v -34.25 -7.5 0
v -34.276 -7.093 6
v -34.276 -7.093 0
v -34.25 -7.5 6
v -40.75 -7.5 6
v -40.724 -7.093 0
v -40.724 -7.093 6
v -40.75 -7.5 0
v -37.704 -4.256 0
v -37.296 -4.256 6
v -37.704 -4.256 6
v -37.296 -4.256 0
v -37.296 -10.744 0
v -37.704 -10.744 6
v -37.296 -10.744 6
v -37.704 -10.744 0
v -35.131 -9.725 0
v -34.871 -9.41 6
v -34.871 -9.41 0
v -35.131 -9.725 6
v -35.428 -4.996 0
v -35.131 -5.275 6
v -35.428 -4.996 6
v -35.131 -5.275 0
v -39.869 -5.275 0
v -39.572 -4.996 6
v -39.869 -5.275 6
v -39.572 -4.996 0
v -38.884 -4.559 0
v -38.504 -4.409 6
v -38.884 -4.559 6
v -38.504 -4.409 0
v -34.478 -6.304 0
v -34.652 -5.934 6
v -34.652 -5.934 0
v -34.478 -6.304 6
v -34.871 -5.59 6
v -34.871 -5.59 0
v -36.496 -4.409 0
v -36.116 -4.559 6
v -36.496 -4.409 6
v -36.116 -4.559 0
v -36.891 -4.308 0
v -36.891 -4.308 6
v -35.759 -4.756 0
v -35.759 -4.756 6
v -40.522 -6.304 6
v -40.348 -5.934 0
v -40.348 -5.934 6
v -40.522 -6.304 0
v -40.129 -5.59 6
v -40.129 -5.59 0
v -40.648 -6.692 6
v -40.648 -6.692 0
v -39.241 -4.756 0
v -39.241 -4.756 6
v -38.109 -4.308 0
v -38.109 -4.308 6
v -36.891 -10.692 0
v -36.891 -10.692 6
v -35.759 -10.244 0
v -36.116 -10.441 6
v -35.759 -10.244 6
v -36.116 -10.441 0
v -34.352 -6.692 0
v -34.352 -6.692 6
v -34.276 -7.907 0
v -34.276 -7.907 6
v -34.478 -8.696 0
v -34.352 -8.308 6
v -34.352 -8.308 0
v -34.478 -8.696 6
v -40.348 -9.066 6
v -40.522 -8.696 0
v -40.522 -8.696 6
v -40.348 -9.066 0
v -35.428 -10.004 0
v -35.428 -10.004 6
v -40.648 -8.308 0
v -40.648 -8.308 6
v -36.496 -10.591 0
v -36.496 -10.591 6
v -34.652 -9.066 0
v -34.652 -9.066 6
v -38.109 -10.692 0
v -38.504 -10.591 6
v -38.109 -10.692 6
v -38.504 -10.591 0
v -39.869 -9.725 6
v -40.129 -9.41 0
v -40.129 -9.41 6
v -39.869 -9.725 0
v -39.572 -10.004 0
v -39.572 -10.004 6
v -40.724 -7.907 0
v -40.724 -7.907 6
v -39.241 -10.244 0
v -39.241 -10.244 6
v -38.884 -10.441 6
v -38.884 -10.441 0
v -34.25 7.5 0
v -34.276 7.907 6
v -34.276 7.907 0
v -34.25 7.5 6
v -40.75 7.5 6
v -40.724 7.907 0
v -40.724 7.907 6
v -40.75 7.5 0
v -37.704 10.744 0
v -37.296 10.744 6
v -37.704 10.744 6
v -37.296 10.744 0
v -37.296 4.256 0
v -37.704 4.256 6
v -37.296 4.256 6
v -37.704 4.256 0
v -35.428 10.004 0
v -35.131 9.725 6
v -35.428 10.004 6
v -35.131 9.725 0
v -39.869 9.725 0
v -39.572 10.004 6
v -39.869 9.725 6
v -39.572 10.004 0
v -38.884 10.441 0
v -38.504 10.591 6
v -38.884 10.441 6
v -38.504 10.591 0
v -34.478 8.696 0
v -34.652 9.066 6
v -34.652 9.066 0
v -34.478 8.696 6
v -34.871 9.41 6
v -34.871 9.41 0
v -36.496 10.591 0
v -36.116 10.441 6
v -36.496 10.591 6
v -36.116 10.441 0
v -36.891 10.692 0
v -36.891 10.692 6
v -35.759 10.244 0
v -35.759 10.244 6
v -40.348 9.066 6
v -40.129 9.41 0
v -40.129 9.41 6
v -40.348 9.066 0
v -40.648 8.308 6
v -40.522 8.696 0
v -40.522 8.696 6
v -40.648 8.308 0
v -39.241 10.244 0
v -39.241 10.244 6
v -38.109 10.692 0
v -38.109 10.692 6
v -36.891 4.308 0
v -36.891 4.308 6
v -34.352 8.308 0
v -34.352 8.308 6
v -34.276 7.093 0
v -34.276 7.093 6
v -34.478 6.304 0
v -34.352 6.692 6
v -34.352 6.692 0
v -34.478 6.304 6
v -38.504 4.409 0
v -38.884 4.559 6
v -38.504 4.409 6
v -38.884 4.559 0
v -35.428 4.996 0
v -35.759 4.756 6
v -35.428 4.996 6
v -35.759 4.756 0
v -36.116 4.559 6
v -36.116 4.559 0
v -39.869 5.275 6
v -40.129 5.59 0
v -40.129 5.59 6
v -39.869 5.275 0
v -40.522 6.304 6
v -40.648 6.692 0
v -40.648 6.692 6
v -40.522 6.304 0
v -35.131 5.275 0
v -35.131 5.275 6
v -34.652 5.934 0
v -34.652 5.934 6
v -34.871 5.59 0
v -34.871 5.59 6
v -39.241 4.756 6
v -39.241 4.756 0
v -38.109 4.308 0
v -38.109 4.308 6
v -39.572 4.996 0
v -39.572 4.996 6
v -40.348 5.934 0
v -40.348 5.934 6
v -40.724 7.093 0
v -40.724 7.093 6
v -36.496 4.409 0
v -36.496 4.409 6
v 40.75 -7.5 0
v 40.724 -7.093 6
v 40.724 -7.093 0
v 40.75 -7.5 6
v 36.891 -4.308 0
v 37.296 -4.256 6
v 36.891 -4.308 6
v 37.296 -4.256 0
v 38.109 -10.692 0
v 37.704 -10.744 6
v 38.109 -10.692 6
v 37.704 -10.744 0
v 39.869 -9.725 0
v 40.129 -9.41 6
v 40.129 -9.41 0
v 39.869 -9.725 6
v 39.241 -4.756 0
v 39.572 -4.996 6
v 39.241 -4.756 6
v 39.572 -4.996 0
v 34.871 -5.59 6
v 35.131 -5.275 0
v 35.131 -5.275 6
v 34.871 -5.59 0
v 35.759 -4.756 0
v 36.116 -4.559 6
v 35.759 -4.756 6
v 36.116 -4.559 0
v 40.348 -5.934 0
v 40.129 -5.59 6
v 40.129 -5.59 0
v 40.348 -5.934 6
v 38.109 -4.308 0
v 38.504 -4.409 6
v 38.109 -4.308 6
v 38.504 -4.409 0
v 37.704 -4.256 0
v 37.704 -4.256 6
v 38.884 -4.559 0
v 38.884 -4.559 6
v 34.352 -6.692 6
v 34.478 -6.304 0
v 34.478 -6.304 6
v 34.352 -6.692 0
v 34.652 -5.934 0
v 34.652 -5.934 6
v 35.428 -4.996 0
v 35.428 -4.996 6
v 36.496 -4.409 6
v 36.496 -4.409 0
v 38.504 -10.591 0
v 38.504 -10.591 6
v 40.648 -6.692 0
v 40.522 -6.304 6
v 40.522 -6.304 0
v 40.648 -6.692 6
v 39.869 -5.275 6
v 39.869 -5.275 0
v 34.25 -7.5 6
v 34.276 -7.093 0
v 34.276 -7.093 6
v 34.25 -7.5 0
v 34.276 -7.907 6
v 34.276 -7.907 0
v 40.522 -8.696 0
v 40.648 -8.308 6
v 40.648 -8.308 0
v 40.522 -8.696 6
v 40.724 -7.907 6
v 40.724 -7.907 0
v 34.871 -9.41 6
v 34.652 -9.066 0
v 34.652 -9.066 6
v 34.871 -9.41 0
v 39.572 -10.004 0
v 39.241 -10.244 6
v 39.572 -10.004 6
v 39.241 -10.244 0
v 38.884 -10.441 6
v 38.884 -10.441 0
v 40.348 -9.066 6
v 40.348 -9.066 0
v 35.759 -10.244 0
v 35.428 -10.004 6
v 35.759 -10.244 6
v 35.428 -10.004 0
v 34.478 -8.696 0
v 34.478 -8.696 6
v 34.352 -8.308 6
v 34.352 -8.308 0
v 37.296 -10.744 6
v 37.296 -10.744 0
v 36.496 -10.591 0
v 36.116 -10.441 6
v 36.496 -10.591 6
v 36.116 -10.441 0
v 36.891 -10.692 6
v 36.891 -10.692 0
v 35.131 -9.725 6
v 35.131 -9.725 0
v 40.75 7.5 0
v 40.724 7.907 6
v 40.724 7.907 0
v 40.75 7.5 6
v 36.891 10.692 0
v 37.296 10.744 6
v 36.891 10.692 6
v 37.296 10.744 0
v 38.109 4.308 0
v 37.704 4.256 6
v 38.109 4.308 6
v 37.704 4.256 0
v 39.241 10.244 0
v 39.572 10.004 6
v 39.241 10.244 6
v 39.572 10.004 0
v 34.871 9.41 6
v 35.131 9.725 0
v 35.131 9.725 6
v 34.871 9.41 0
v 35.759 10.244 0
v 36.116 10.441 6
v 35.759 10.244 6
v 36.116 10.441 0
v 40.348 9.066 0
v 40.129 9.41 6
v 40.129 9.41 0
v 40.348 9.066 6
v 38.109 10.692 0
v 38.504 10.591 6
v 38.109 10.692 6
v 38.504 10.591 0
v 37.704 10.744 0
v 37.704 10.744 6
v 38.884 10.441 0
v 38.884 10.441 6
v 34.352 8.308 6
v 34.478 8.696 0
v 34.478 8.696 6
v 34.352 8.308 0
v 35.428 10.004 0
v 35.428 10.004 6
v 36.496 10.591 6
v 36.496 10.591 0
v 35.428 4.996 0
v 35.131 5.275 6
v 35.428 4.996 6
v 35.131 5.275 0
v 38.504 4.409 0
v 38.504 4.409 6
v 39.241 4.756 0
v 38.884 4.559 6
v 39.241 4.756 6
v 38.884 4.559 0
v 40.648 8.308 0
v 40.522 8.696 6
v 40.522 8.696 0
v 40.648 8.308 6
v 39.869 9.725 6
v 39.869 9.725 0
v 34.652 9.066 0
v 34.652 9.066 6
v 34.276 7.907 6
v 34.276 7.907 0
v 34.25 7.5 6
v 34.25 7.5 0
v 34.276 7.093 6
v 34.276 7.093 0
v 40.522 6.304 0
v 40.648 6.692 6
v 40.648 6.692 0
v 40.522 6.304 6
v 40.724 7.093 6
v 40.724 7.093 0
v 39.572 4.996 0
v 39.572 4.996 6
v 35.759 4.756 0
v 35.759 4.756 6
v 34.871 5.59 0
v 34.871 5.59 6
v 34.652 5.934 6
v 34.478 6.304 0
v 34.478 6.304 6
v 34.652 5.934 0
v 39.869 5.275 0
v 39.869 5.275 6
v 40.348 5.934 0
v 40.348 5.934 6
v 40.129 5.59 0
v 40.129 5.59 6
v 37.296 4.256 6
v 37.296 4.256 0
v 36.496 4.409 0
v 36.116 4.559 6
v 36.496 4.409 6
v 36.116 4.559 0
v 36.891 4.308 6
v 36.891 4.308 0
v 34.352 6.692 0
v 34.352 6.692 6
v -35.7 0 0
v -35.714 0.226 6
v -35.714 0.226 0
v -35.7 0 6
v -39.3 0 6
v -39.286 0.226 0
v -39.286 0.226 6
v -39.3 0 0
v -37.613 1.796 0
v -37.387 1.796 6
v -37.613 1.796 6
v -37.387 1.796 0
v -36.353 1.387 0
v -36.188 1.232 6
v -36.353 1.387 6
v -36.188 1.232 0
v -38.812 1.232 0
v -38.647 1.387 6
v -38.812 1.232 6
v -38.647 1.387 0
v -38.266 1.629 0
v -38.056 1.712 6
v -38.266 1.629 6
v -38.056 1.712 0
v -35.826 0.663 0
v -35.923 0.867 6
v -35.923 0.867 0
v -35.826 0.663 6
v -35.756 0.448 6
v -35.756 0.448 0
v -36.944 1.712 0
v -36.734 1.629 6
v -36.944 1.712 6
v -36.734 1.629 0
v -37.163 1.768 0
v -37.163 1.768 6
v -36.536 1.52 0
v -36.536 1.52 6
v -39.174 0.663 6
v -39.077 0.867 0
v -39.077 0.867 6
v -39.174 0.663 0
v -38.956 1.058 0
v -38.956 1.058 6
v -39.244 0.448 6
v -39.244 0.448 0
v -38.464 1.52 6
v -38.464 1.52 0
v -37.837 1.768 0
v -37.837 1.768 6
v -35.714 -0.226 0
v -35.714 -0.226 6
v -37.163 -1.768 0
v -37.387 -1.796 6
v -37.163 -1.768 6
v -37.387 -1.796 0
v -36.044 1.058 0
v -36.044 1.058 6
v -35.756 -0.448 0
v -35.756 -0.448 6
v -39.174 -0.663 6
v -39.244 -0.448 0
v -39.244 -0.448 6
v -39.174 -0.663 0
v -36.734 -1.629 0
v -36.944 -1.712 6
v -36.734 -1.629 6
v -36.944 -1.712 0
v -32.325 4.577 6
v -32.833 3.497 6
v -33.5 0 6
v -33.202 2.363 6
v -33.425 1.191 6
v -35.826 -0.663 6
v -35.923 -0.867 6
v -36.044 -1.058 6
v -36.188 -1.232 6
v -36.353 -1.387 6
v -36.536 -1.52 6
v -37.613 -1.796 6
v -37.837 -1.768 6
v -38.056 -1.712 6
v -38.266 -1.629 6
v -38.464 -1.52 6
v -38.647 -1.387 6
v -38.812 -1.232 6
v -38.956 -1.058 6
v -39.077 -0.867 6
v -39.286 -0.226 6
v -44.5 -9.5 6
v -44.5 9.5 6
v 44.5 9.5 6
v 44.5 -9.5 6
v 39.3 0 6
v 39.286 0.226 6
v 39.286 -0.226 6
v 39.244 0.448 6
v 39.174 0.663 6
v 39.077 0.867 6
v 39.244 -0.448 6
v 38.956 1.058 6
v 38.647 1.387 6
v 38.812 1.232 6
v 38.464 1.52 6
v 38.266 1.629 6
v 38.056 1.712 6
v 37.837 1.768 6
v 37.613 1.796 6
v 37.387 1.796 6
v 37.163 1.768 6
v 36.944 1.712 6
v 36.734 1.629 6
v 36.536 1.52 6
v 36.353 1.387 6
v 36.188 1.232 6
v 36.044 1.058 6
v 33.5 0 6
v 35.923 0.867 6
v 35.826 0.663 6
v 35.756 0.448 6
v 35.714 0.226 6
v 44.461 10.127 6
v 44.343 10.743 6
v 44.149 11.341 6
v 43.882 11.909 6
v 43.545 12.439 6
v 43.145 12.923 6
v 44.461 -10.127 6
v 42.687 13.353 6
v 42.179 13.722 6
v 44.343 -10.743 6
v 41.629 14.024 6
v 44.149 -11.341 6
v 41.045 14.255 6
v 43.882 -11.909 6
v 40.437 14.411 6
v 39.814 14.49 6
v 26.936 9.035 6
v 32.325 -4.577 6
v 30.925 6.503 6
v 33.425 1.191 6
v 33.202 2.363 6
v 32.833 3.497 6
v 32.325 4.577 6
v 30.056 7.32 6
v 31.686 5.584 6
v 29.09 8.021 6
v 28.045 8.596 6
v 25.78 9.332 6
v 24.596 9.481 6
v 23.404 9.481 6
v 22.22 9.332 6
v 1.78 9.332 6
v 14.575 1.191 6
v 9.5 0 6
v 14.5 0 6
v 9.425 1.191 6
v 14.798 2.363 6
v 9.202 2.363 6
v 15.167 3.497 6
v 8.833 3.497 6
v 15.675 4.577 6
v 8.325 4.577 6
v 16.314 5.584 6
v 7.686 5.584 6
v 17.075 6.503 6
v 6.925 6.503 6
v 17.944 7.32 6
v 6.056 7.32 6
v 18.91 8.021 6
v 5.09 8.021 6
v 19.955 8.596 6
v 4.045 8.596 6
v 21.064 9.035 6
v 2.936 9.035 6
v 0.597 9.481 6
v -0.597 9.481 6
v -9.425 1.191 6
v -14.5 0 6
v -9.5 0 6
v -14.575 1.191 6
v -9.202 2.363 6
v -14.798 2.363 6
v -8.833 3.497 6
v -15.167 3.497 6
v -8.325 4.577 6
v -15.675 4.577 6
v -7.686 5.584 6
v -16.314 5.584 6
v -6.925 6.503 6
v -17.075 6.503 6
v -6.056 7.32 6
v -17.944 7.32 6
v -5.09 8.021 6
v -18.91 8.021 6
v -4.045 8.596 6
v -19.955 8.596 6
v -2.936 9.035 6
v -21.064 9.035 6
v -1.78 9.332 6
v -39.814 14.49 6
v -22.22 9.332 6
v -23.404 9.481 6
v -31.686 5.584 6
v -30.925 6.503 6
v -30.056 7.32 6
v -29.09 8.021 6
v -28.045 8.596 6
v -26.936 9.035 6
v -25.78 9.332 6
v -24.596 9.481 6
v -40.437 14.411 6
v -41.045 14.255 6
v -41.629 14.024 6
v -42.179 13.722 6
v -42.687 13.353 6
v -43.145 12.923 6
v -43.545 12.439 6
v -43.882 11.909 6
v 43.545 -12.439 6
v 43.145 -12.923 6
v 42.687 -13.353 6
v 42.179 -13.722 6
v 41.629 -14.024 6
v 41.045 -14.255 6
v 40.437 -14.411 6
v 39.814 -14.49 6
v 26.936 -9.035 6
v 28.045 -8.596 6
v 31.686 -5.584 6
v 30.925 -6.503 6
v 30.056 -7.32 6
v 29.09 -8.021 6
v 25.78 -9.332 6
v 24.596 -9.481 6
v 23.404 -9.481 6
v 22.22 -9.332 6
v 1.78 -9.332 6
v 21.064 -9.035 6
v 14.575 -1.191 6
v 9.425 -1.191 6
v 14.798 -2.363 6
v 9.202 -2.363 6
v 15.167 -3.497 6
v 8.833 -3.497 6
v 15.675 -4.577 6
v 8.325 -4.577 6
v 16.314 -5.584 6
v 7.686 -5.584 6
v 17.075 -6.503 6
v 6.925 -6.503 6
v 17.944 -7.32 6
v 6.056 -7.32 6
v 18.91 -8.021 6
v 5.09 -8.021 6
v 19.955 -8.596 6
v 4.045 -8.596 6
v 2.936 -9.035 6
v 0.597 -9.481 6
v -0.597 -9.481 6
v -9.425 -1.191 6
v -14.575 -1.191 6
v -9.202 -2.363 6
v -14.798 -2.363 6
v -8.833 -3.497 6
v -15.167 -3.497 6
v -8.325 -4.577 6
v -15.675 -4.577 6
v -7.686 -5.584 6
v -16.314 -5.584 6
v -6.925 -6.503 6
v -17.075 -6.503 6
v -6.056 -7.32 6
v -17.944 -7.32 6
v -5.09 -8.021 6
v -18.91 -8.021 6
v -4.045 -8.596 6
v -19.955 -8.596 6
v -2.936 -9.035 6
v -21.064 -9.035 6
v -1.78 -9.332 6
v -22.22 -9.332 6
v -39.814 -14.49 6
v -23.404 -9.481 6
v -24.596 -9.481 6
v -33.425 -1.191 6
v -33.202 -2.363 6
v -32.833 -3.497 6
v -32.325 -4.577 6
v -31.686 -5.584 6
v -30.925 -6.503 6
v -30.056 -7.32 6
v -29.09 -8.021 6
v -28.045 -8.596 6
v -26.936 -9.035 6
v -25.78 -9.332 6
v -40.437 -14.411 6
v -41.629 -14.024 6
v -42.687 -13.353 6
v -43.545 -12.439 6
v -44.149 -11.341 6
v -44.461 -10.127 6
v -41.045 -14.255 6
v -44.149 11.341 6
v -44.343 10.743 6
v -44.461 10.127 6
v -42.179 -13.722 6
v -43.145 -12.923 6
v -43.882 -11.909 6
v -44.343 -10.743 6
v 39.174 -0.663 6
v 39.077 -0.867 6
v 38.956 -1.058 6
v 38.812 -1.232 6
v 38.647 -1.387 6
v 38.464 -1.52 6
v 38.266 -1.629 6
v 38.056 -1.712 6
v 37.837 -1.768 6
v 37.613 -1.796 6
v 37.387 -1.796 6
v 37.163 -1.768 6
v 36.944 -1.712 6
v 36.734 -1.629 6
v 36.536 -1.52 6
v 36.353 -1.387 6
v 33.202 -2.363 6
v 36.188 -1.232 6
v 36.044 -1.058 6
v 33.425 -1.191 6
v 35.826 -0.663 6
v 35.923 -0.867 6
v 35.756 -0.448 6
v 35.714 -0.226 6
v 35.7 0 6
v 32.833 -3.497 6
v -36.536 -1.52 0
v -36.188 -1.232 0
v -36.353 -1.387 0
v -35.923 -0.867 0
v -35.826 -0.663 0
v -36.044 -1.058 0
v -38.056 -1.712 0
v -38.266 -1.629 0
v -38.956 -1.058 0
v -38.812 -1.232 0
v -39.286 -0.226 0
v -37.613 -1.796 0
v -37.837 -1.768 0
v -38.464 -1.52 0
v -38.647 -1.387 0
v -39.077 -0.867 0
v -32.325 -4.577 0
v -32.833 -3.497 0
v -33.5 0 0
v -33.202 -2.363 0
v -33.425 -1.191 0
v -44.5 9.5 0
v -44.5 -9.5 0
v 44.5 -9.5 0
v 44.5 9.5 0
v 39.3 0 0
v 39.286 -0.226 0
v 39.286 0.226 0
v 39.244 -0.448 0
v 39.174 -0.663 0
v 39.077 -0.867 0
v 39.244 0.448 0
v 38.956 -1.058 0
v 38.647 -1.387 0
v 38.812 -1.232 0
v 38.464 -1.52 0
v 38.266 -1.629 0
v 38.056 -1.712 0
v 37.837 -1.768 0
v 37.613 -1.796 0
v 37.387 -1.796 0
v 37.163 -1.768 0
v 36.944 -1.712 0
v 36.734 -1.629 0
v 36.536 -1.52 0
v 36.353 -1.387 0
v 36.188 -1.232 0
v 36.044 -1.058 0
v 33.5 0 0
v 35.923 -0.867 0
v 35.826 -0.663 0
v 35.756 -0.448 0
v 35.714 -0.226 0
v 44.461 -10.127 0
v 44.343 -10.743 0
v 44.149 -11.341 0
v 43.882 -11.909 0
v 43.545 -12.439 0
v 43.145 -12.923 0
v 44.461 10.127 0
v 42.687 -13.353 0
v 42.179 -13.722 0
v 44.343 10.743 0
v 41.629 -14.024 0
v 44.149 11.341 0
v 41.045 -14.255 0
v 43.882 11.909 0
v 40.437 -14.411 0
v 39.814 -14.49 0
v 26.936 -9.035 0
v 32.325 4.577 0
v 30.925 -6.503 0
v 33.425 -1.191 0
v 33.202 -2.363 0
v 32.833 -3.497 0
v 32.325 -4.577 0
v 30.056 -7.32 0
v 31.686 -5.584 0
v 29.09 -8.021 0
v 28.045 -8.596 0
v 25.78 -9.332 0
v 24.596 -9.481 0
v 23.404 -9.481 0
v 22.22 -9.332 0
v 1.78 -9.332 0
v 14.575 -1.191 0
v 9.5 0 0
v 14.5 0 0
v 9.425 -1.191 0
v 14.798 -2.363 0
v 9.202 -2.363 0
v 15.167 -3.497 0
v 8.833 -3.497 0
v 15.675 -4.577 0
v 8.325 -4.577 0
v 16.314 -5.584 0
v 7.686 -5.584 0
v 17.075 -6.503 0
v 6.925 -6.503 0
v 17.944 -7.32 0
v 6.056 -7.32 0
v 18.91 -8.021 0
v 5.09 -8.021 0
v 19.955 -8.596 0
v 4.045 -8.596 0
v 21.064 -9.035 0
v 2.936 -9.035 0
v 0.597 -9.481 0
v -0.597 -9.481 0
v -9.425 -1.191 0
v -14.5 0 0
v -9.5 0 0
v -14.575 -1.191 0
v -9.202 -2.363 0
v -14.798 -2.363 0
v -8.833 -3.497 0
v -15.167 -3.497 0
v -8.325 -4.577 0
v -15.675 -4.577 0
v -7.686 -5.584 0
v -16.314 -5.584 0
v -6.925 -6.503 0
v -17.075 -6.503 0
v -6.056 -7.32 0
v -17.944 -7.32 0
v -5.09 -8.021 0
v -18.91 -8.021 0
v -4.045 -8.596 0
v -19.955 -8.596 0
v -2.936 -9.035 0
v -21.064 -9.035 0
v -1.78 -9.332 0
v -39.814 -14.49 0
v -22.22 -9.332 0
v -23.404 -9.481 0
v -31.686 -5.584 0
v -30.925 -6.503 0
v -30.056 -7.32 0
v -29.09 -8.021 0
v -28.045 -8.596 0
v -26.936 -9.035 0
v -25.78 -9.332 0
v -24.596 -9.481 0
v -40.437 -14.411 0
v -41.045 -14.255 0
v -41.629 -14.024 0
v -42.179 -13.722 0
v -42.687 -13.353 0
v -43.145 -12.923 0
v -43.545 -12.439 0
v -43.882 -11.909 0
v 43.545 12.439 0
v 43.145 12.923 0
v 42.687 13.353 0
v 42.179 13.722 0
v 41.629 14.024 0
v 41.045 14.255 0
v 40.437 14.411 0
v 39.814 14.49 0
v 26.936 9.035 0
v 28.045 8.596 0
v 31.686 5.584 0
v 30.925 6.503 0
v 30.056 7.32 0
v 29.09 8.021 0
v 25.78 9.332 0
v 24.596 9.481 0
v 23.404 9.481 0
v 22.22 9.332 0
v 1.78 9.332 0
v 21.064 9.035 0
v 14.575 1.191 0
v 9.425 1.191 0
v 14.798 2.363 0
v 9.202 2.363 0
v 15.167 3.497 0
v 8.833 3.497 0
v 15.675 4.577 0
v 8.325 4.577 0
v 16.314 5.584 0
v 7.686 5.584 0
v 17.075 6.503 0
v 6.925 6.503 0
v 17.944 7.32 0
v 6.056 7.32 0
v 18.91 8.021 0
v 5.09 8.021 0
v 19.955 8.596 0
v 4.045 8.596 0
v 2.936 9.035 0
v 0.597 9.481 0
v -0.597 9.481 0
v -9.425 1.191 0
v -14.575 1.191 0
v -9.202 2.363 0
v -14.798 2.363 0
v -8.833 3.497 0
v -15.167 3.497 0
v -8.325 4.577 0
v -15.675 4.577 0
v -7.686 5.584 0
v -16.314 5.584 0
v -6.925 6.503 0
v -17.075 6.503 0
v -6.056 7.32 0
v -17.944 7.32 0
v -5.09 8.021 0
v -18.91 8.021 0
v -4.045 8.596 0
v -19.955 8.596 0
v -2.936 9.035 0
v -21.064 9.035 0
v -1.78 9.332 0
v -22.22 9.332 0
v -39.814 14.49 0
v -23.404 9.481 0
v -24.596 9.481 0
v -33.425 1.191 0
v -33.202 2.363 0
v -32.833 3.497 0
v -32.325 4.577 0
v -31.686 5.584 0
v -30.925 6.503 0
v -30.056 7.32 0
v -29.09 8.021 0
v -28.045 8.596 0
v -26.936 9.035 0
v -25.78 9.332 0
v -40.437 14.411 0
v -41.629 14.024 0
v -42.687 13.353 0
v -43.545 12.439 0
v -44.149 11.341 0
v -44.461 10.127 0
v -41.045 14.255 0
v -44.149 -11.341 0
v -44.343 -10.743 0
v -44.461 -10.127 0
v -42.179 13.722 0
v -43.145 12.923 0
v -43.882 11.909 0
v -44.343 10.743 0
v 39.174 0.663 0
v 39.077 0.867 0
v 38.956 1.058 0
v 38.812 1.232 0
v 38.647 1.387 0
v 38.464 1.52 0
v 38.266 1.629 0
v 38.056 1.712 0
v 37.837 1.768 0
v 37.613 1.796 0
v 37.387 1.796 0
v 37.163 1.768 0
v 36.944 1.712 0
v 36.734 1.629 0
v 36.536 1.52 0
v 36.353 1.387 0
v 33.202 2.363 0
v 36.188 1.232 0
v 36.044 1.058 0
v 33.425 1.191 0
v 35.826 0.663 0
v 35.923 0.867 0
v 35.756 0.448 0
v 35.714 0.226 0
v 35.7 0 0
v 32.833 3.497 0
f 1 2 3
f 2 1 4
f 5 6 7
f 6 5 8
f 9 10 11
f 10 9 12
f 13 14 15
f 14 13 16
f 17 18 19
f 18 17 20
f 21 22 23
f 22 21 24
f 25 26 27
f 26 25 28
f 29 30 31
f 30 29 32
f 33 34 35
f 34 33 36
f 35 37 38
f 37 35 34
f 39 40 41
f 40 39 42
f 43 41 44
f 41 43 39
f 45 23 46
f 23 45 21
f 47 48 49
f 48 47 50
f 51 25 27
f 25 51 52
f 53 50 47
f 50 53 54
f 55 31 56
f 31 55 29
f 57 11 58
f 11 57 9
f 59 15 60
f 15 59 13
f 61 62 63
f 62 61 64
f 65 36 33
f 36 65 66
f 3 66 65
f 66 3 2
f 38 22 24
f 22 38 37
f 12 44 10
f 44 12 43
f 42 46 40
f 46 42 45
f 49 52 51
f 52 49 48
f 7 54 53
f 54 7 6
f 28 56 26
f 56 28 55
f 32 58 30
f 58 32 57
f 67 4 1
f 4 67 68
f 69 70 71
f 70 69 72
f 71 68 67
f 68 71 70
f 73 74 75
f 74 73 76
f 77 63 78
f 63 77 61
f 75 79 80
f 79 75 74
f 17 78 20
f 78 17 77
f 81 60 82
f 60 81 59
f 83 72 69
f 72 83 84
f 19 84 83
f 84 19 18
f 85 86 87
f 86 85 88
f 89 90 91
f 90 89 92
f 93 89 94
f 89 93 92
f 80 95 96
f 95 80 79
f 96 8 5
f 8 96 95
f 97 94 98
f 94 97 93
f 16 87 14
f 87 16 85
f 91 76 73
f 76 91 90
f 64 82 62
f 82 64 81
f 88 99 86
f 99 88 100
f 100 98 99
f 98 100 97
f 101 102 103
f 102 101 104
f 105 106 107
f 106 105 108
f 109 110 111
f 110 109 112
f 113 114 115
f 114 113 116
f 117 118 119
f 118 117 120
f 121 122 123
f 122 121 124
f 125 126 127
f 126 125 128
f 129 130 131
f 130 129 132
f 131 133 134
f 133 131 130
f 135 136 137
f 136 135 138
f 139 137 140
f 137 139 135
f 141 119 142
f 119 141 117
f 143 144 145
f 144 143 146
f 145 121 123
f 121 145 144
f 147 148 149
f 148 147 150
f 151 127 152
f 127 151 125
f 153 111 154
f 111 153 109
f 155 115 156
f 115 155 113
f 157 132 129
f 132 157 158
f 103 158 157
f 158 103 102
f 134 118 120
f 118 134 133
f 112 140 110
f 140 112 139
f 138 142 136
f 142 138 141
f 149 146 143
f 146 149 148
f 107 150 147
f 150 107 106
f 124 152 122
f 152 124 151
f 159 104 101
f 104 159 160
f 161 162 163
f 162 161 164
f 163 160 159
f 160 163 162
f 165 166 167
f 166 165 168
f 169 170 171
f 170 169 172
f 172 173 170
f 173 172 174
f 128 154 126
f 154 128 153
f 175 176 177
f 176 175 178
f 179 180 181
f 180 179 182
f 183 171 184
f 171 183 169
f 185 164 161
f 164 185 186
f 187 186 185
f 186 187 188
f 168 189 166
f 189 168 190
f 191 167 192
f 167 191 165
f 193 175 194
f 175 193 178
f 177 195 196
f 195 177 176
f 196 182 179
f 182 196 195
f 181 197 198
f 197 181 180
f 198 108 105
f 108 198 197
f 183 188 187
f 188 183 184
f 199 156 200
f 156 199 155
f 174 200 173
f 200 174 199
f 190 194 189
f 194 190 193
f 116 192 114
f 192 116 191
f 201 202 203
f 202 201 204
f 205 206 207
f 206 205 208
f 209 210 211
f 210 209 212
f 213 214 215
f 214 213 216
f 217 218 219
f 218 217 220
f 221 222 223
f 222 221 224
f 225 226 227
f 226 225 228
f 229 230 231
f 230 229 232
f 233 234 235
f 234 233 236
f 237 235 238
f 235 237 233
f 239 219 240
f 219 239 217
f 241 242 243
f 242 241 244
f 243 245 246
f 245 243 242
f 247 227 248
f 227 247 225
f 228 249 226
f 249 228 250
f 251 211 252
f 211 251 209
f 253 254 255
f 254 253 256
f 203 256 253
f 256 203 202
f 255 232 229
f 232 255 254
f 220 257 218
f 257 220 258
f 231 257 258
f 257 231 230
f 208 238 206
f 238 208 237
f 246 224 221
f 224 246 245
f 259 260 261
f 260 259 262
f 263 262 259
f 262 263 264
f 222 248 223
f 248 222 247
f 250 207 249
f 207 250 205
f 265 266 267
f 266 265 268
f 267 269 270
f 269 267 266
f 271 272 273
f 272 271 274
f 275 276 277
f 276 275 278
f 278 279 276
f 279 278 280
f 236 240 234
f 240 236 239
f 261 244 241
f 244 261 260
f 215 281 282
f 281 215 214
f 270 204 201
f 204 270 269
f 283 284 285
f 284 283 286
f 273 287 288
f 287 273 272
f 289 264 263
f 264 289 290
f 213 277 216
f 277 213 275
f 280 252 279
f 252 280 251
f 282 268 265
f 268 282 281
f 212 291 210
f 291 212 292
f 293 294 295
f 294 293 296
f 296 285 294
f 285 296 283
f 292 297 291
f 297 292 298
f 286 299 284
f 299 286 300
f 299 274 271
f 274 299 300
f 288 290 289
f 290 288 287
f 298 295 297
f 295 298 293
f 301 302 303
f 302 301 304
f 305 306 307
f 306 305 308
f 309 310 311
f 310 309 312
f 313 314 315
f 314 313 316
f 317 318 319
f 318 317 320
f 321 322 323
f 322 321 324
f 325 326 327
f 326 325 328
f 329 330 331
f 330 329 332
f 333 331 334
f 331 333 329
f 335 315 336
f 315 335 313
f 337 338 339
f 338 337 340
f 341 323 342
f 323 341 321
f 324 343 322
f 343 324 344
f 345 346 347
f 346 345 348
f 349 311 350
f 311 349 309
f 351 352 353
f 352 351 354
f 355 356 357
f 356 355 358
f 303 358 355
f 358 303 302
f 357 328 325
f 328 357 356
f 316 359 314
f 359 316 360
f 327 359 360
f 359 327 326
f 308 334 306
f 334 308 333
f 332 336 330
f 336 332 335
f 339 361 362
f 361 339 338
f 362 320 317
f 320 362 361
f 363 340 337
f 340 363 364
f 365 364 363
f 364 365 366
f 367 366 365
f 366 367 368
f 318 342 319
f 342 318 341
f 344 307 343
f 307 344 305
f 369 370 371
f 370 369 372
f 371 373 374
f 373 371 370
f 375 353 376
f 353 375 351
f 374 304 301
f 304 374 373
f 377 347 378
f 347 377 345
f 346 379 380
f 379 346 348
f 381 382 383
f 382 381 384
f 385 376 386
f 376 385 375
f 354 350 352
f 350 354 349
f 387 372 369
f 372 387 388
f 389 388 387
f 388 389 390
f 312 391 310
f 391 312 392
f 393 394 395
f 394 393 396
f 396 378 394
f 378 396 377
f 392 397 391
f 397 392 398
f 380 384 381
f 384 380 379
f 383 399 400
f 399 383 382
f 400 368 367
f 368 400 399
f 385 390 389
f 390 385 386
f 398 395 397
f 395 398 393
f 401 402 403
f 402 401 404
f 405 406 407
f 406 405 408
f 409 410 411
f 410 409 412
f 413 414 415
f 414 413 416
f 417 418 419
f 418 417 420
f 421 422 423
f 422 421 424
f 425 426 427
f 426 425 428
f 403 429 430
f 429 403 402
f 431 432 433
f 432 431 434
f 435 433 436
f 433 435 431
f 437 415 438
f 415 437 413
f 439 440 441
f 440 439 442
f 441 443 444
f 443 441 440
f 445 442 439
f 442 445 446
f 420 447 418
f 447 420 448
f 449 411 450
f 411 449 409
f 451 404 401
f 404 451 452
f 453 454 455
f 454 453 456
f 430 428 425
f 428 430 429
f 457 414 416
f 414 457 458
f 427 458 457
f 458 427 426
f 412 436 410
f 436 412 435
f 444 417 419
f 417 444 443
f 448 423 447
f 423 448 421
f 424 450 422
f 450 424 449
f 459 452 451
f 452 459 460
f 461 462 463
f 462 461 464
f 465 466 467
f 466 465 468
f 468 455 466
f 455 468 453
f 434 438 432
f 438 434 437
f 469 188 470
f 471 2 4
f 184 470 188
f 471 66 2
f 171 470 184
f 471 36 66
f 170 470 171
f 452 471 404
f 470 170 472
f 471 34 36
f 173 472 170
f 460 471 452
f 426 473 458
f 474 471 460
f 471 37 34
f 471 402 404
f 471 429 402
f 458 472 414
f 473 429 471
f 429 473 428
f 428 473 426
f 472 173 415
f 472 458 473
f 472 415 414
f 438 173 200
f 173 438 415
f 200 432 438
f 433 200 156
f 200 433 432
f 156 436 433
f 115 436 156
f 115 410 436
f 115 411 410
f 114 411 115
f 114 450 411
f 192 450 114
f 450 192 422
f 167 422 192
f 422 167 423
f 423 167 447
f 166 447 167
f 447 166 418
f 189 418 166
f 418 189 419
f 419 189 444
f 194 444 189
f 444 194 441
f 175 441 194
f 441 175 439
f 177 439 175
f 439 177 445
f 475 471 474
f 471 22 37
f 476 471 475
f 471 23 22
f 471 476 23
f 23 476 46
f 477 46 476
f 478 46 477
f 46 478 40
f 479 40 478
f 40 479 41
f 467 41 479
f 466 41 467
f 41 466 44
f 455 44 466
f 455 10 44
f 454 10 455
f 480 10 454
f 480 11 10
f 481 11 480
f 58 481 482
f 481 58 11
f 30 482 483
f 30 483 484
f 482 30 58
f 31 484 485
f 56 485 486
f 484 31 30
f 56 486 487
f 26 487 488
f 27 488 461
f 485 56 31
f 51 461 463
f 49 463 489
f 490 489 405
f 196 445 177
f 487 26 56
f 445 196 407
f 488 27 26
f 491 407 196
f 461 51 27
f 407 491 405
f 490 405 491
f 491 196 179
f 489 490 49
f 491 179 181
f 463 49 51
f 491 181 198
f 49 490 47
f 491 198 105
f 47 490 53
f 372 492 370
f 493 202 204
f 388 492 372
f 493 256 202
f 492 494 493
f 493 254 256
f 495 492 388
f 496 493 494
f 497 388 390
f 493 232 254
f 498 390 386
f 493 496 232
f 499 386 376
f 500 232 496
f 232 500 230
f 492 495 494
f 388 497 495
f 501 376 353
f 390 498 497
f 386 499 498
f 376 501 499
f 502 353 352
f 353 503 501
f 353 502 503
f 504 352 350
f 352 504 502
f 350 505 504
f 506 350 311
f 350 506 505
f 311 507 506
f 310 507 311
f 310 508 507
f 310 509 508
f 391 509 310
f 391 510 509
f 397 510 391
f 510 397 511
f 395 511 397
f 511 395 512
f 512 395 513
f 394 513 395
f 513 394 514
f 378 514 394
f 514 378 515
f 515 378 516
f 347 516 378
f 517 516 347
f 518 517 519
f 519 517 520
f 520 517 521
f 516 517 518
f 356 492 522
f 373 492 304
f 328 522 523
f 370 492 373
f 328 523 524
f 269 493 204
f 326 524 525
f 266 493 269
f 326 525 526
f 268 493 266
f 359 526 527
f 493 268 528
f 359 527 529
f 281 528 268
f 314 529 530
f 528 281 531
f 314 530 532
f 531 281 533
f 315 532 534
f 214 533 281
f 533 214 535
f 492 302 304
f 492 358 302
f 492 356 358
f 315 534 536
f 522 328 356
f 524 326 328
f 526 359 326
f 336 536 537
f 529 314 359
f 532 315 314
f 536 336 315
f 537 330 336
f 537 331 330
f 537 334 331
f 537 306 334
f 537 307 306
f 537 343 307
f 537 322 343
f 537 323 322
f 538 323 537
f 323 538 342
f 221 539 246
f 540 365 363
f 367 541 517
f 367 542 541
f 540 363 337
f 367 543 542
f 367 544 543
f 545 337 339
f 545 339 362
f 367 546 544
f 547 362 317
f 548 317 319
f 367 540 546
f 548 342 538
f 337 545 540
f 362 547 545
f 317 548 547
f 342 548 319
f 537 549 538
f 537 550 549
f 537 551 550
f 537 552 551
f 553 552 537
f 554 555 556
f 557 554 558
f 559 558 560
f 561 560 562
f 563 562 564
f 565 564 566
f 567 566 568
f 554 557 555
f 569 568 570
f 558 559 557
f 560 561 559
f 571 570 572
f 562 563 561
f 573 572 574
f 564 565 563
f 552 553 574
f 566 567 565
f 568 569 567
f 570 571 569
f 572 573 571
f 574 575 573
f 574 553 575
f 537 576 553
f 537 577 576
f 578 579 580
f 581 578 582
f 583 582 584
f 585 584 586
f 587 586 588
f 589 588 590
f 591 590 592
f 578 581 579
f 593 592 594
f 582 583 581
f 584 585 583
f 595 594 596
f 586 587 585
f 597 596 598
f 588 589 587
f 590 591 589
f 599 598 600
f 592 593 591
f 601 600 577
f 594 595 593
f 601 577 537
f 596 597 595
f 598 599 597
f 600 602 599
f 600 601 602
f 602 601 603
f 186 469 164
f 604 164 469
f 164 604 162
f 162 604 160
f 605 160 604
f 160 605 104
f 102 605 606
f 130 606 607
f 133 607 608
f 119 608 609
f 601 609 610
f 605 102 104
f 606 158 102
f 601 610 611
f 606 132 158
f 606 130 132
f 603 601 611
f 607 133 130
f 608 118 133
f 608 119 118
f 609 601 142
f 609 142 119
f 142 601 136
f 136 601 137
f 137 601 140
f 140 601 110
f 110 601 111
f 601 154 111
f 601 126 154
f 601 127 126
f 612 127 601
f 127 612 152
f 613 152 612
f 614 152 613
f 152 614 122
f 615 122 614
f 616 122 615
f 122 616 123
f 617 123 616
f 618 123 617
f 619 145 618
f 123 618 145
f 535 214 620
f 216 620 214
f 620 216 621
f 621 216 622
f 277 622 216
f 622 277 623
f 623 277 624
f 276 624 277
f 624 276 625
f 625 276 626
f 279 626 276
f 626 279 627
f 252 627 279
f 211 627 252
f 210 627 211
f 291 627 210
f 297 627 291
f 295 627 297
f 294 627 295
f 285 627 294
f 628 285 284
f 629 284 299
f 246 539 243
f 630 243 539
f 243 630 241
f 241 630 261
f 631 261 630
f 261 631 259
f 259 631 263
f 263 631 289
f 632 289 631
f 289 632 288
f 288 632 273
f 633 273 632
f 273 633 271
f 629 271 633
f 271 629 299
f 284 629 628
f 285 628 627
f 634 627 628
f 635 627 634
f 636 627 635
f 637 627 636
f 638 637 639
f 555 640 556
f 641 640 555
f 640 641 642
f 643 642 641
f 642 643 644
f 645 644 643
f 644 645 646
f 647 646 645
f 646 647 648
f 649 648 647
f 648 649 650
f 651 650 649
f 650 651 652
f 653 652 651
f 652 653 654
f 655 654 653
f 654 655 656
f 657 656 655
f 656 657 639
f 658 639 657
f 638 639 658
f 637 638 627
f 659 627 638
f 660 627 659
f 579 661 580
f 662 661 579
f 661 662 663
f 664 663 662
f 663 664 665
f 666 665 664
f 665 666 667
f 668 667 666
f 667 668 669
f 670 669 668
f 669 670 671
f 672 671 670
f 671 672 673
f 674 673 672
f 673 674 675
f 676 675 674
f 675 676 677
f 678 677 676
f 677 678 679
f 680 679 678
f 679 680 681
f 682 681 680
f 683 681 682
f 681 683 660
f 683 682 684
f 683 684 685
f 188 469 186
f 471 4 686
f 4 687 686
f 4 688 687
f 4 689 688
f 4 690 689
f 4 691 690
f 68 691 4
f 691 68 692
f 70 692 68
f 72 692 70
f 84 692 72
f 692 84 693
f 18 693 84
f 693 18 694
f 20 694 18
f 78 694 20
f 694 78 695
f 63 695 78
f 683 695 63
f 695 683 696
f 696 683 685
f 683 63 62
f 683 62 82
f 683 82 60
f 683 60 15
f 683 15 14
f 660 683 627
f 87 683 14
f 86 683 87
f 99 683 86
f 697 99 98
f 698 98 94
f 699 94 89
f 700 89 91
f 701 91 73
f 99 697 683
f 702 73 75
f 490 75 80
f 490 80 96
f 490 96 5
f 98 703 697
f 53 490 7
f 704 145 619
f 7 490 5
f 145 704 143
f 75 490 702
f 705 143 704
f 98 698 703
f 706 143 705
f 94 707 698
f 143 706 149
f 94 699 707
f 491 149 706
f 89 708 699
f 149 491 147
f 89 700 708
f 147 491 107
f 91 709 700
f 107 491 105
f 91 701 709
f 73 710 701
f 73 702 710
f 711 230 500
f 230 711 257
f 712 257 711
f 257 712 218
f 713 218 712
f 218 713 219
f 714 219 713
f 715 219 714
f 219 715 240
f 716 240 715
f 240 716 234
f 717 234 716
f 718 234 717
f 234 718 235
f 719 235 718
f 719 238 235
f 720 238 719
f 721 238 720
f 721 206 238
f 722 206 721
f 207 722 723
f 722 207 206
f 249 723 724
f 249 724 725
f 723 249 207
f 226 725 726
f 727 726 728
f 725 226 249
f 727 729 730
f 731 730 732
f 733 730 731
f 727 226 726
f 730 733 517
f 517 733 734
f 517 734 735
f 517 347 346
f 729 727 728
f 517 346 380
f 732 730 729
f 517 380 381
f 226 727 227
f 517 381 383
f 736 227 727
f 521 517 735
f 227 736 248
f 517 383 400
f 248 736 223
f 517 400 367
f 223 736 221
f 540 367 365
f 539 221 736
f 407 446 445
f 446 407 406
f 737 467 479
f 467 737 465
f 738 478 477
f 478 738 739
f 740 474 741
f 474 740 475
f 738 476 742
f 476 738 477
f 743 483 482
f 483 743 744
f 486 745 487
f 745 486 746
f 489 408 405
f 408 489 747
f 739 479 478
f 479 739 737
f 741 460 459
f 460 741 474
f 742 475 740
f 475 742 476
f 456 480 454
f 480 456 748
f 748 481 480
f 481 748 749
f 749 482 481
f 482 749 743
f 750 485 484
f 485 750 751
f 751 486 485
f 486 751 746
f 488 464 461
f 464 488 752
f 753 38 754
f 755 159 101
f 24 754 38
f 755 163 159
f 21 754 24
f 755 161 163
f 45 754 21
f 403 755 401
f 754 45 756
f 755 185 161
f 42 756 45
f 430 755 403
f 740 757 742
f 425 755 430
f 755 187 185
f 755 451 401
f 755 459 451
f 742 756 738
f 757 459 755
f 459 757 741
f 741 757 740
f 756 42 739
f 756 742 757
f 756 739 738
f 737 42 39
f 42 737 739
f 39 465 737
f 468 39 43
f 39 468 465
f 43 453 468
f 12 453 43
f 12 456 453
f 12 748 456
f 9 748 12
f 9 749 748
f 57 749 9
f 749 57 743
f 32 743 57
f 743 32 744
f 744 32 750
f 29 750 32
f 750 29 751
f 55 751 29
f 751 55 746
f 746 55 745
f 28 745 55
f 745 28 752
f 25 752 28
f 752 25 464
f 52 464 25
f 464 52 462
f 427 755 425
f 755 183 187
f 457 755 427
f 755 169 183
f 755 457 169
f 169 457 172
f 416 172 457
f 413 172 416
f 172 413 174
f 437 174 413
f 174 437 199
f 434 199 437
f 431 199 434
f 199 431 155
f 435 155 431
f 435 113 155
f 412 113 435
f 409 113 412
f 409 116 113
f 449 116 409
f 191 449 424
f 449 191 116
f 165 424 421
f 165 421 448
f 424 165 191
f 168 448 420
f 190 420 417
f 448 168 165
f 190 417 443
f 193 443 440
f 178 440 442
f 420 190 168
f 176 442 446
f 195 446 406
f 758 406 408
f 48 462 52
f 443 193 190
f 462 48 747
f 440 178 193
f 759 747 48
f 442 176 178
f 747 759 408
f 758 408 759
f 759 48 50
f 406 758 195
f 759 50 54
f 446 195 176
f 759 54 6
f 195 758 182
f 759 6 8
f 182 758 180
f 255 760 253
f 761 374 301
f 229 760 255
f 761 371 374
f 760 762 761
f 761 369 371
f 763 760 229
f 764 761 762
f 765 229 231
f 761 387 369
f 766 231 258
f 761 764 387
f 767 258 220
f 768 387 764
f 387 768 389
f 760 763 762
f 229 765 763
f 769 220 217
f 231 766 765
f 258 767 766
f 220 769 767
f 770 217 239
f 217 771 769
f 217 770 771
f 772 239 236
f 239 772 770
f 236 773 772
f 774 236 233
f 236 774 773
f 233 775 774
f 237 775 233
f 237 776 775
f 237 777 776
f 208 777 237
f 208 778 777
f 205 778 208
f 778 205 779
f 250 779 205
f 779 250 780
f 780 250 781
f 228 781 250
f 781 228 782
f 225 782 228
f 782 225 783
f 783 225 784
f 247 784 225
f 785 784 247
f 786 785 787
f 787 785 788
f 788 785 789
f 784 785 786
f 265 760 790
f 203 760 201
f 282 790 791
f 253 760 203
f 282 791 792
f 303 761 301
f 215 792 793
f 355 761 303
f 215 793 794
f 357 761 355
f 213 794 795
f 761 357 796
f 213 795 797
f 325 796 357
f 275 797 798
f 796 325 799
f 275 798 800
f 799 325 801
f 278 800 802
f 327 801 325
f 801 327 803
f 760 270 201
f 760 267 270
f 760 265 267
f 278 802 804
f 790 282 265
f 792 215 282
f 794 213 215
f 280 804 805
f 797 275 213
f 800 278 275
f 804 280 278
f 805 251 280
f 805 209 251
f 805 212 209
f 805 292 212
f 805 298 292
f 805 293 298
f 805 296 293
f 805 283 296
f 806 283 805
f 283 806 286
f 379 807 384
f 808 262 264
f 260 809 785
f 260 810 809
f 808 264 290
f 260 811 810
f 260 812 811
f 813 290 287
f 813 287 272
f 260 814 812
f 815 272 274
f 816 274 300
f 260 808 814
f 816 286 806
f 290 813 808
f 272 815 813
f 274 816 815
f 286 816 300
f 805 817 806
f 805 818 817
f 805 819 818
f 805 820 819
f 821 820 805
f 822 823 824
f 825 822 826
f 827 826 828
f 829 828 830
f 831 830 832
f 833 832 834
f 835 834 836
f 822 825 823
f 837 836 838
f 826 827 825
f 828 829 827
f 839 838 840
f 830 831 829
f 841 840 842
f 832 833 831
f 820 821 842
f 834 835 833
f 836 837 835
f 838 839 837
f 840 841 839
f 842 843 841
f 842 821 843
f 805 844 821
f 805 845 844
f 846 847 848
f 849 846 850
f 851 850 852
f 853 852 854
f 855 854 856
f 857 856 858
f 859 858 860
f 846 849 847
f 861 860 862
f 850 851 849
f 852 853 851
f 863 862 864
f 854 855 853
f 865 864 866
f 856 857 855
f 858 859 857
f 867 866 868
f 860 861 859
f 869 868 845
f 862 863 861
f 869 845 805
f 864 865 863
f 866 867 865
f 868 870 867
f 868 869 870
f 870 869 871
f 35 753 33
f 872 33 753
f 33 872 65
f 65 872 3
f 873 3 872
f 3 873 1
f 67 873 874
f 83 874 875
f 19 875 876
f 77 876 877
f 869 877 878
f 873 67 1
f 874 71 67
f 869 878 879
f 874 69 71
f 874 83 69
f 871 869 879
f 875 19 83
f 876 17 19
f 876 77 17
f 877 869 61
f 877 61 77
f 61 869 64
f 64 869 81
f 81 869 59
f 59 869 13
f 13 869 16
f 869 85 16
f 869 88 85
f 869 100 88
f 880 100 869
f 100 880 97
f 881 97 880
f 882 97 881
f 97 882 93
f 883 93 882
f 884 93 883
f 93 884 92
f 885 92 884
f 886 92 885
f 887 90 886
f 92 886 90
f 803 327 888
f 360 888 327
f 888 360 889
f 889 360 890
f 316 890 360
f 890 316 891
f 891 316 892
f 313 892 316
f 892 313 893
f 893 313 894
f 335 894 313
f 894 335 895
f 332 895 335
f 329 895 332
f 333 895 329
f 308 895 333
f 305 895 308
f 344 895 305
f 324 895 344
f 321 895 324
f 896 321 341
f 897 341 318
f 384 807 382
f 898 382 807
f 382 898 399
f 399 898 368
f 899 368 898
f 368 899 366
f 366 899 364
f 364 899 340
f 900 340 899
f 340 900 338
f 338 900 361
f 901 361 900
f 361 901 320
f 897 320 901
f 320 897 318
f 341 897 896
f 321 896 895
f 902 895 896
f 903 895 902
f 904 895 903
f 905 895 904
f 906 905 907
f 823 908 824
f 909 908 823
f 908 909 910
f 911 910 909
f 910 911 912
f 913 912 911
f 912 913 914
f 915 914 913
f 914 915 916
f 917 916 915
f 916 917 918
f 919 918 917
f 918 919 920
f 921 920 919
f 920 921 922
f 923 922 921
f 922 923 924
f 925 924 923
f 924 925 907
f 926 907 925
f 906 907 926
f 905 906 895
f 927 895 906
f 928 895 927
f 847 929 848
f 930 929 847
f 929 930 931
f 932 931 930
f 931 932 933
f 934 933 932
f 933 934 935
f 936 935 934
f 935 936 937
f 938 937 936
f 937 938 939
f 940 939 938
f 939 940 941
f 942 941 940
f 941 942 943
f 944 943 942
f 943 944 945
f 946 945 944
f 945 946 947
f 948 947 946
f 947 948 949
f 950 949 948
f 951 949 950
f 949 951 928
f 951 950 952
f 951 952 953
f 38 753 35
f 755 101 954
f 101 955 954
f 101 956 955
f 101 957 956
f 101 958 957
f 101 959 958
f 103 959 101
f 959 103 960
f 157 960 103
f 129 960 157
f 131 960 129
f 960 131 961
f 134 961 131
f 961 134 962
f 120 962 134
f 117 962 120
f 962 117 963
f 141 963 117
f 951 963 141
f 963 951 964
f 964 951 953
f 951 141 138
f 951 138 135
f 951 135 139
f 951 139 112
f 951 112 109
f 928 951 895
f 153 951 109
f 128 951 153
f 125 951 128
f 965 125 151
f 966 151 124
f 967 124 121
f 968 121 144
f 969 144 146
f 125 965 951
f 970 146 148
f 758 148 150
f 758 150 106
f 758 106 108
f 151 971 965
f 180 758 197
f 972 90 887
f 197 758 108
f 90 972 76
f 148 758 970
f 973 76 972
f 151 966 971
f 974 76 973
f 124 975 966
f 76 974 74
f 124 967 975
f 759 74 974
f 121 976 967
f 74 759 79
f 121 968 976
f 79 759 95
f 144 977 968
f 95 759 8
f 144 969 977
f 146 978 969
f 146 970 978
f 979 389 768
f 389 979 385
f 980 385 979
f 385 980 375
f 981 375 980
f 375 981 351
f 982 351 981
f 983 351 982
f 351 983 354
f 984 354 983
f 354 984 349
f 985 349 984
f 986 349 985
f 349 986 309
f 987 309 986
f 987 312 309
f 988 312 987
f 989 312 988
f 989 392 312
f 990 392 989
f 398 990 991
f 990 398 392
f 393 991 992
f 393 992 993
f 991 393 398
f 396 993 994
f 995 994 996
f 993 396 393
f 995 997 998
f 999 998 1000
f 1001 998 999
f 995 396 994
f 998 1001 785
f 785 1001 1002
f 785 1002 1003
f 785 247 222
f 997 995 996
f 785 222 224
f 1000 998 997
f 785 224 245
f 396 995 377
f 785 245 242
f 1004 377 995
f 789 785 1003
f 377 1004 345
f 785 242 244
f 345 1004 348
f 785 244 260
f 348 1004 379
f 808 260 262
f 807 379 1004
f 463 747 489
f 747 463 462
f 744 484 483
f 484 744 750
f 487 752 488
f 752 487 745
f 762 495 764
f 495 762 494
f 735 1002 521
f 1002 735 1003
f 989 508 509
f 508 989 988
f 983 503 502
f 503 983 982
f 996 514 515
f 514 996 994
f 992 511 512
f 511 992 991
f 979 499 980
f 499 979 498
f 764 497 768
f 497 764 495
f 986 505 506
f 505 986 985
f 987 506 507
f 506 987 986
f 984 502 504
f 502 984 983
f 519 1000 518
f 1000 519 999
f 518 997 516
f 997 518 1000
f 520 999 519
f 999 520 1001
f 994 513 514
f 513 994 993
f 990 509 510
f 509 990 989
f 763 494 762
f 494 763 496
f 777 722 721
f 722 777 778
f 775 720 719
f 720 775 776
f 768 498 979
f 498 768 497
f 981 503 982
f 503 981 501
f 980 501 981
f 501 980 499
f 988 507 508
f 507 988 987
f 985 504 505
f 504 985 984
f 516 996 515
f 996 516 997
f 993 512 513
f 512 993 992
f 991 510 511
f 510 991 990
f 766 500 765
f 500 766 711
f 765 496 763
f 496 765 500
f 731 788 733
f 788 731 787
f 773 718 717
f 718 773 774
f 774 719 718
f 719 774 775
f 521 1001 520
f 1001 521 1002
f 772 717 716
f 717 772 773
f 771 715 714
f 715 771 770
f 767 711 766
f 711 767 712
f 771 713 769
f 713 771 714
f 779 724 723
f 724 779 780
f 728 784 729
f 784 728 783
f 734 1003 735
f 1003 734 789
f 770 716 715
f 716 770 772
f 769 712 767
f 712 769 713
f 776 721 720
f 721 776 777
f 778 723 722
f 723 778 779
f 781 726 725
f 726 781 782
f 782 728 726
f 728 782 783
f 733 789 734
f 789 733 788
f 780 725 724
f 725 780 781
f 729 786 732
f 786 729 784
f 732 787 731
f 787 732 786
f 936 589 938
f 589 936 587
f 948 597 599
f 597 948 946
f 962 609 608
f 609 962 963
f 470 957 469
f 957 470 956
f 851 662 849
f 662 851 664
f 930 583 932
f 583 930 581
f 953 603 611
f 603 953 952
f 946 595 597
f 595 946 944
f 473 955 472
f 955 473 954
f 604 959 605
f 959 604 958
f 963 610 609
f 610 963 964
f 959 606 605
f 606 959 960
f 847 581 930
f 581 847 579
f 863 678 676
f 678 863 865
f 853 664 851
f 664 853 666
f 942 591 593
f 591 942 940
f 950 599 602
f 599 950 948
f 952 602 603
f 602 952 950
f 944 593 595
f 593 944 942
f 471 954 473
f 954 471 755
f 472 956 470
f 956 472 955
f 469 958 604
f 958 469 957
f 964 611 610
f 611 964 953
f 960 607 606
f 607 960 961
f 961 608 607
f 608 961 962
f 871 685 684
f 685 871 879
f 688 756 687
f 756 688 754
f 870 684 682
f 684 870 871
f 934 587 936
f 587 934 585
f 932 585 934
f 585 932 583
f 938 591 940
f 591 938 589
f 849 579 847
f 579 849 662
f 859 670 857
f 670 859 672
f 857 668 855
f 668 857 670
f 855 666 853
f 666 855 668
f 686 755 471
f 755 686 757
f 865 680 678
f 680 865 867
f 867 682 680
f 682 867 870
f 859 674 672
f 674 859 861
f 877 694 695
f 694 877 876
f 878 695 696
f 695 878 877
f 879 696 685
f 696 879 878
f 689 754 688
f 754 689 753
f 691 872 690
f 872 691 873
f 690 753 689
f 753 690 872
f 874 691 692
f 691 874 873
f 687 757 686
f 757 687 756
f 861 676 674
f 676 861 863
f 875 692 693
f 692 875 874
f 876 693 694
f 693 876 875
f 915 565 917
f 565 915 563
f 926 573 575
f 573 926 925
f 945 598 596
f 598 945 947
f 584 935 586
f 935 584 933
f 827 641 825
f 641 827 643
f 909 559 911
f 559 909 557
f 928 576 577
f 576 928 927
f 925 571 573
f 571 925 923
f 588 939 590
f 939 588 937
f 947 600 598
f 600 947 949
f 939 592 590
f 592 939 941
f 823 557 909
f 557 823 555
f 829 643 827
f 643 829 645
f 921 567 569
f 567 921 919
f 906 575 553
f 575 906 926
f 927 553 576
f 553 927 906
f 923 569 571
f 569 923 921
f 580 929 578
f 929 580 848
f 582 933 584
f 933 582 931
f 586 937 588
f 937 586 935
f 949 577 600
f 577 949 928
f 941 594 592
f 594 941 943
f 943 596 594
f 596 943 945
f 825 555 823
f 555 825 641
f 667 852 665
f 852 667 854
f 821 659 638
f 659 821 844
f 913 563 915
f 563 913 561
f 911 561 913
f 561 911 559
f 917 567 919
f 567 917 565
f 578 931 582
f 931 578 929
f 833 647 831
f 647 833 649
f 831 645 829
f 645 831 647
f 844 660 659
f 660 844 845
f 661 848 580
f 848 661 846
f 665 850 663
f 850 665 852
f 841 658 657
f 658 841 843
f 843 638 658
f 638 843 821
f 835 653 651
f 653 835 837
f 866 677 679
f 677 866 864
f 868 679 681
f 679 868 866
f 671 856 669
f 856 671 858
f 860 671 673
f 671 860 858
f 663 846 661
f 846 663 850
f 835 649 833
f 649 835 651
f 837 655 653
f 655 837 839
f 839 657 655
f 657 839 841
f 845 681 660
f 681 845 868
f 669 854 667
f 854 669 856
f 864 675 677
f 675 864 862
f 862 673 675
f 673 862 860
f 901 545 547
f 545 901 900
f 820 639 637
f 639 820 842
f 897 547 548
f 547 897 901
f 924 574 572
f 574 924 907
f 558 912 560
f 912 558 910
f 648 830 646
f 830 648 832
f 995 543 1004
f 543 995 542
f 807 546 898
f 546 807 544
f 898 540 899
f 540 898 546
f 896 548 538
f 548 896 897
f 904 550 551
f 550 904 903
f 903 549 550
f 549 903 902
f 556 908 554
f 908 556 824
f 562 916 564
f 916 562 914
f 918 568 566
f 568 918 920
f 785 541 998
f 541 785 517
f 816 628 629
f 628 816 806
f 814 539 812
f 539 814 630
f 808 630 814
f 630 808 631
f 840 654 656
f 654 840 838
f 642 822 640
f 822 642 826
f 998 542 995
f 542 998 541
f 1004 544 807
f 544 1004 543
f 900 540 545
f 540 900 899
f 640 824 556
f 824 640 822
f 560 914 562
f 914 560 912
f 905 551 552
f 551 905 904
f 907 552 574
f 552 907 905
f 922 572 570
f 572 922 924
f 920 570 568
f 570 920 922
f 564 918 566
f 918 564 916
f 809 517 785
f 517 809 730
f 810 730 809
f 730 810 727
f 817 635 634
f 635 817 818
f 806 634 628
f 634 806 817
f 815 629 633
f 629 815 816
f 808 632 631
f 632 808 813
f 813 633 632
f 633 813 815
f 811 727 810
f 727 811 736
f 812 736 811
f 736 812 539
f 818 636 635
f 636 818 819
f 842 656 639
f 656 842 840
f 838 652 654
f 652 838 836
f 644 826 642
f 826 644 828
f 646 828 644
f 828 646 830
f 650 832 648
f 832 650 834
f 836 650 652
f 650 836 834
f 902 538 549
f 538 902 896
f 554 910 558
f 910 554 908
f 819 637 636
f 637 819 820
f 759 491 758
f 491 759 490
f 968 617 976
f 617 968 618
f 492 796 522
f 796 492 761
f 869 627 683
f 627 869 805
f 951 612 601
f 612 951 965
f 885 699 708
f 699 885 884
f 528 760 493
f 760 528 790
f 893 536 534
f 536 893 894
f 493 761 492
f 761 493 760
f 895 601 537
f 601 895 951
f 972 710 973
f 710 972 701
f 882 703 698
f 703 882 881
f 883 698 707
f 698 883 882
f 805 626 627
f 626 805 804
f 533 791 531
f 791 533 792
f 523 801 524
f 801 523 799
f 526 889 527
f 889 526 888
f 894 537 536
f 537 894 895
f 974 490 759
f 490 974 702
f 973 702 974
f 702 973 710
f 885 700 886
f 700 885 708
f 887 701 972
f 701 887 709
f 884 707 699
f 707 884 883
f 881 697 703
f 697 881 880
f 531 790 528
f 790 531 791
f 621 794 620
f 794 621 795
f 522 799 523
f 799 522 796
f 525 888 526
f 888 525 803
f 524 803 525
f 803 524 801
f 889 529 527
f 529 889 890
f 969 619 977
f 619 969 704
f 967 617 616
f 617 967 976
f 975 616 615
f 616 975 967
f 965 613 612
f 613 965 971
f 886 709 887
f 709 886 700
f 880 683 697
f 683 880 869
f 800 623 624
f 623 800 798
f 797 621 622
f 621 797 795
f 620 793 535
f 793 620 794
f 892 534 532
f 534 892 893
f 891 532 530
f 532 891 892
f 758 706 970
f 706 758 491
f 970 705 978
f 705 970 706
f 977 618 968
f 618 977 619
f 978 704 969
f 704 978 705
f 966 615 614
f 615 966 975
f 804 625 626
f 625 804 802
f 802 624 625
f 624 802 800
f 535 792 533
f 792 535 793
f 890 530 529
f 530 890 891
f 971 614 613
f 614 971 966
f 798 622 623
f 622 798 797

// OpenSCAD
$fn = 50;


difference() {
	union() {
		hull() {
			translate(v = [-39.5000000000, 9.5000000000, 0]) {
				cylinder(h = 6, r = 5);
			}
			translate(v = [39.5000000000, 9.5000000000, 0]) {
				cylinder(h = 6, r = 5);
			}
			translate(v = [-39.5000000000, -9.5000000000, 0]) {
				cylinder(h = 6, r = 5);
			}
			translate(v = [39.5000000000, -9.5000000000, 0]) {
				cylinder(h = 6, r = 5);
			}
		}
	}
	union() {
		#translate(v = [-37.5000000000, -7.5000000000, 0]) {
			cylinder(h = 6, r = 3.2500000000);
		}
		#translate(v = [-37.5000000000, 7.5000000000, 0]) {
			cylinder(h = 6, r = 3.2500000000);
		}
		#translate(v = [37.5000000000, -7.5000000000, 0]) {
			cylinder(h = 6, r = 3.2500000000);
		}
		#translate(v = [37.5000000000, 7.5000000000, 0]) {
			cylinder(h = 6, r = 3.2500000000);
		}
		#translate(v = [-37.5000000000, -7.5000000000, -100.0000000000]) {
			cylinder(h = 200, r = 3.2500000000);
		}
		#translate(v = [-37.5000000000, 7.5000000000, -100.0000000000]) {
			cylinder(h = 200, r = 3.2500000000);
		}
		#translate(v = [37.5000000000, -7.5000000000, -100.0000000000]) {
			cylinder(h = 200, r = 3.2500000000);
		}
		#translate(v = [37.5000000000, 7.5000000000, -100.0000000000]) {
			cylinder(h = 200, r = 3.2500000000);
		}
		#translate(v = [-37.5000000000, -7.5000000000, 0]) {
			cylinder(h = 6, r = 1.8000000000);
		}
		#translate(v = [-37.5000000000, 0.0000000000, 0]) {
			cylinder(h = 6, r = 1.8000000000);
		}
		#translate(v = [-37.5000000000, 7.5000000000, 0]) {
			cylinder(h = 6, r = 1.8000000000);
		}
		#translate(v = [37.5000000000, -7.5000000000, 0]) {
			cylinder(h = 6, r = 1.8000000000);
		}
		#translate(v = [37.5000000000, 0.0000000000, 0]) {
			cylinder(h = 6, r = 1.8000000000);
		}
		#translate(v = [37.5000000000, 7.5000000000, 0]) {
			cylinder(h = 6, r = 1.8000000000);
		}
		#translate(v = [-37.5000000000, -7.5000000000, 0]) {
			cylinder(h = 6, r = 1.8000000000);
		}
		#translate(v = [-37.5000000000, 0.0000000000, 0]) {
			cylinder(h = 6, r = 1.8000000000);
		}
		#translate(v = [-37.5000000000, 7.5000000000, 0]) {
			cylinder(h = 6, r = 1.8000000000);
		}
		#translate(v = [37.5000000000, -7.5000000000, 0]) {
			cylinder(h = 6, r = 1.8000000000);
		}
		#translate(v = [37.5000000000, 0.0000000000, 0]) {
			cylinder(h = 6, r = 1.8000000000);
		}
		#translate(v = [37.5000000000, 7.5000000000, 0]) {
			cylinder(h = 6, r = 1.8000000000);
		}
		#translate(v = [-37.5000000000, -7.5000000000, 0]) {
			cylinder(h = 6, r = 1.8000000000);
		}
		#translate(v = [-37.5000000000, 0.0000000000, 0]) {
			cylinder(h = 6, r = 1.8000000000);
		}
		#translate(v = [-37.5000000000, 7.5000000000, 0]) {
			cylinder(h = 6, r = 1.8000000000);
		}
		#translate(v = [37.5000000000, -7.5000000000, 0]) {
			cylinder(h = 6, r = 1.8000000000);
		}
		#translate(v = [37.5000000000, 0.0000000000, 0]) {
			cylinder(h = 6, r = 1.8000000000);
		}
		#translate(v = [37.5000000000, 7.5000000000, 0]) {
			cylinder(h = 6, r = 1.8000000000);
		}
		#translate(v = [-24.0000000000, 0, 0]) {
			cylinder(h = 6, r = 9.5000000000);
		}
		#cylinder(h = 6, r = 9.5000000000);
		#translate(v = [24.0000000000, 0, 0]) {
			cylinder(h = 6, r = 9.5000000000);
		}
	}
}
